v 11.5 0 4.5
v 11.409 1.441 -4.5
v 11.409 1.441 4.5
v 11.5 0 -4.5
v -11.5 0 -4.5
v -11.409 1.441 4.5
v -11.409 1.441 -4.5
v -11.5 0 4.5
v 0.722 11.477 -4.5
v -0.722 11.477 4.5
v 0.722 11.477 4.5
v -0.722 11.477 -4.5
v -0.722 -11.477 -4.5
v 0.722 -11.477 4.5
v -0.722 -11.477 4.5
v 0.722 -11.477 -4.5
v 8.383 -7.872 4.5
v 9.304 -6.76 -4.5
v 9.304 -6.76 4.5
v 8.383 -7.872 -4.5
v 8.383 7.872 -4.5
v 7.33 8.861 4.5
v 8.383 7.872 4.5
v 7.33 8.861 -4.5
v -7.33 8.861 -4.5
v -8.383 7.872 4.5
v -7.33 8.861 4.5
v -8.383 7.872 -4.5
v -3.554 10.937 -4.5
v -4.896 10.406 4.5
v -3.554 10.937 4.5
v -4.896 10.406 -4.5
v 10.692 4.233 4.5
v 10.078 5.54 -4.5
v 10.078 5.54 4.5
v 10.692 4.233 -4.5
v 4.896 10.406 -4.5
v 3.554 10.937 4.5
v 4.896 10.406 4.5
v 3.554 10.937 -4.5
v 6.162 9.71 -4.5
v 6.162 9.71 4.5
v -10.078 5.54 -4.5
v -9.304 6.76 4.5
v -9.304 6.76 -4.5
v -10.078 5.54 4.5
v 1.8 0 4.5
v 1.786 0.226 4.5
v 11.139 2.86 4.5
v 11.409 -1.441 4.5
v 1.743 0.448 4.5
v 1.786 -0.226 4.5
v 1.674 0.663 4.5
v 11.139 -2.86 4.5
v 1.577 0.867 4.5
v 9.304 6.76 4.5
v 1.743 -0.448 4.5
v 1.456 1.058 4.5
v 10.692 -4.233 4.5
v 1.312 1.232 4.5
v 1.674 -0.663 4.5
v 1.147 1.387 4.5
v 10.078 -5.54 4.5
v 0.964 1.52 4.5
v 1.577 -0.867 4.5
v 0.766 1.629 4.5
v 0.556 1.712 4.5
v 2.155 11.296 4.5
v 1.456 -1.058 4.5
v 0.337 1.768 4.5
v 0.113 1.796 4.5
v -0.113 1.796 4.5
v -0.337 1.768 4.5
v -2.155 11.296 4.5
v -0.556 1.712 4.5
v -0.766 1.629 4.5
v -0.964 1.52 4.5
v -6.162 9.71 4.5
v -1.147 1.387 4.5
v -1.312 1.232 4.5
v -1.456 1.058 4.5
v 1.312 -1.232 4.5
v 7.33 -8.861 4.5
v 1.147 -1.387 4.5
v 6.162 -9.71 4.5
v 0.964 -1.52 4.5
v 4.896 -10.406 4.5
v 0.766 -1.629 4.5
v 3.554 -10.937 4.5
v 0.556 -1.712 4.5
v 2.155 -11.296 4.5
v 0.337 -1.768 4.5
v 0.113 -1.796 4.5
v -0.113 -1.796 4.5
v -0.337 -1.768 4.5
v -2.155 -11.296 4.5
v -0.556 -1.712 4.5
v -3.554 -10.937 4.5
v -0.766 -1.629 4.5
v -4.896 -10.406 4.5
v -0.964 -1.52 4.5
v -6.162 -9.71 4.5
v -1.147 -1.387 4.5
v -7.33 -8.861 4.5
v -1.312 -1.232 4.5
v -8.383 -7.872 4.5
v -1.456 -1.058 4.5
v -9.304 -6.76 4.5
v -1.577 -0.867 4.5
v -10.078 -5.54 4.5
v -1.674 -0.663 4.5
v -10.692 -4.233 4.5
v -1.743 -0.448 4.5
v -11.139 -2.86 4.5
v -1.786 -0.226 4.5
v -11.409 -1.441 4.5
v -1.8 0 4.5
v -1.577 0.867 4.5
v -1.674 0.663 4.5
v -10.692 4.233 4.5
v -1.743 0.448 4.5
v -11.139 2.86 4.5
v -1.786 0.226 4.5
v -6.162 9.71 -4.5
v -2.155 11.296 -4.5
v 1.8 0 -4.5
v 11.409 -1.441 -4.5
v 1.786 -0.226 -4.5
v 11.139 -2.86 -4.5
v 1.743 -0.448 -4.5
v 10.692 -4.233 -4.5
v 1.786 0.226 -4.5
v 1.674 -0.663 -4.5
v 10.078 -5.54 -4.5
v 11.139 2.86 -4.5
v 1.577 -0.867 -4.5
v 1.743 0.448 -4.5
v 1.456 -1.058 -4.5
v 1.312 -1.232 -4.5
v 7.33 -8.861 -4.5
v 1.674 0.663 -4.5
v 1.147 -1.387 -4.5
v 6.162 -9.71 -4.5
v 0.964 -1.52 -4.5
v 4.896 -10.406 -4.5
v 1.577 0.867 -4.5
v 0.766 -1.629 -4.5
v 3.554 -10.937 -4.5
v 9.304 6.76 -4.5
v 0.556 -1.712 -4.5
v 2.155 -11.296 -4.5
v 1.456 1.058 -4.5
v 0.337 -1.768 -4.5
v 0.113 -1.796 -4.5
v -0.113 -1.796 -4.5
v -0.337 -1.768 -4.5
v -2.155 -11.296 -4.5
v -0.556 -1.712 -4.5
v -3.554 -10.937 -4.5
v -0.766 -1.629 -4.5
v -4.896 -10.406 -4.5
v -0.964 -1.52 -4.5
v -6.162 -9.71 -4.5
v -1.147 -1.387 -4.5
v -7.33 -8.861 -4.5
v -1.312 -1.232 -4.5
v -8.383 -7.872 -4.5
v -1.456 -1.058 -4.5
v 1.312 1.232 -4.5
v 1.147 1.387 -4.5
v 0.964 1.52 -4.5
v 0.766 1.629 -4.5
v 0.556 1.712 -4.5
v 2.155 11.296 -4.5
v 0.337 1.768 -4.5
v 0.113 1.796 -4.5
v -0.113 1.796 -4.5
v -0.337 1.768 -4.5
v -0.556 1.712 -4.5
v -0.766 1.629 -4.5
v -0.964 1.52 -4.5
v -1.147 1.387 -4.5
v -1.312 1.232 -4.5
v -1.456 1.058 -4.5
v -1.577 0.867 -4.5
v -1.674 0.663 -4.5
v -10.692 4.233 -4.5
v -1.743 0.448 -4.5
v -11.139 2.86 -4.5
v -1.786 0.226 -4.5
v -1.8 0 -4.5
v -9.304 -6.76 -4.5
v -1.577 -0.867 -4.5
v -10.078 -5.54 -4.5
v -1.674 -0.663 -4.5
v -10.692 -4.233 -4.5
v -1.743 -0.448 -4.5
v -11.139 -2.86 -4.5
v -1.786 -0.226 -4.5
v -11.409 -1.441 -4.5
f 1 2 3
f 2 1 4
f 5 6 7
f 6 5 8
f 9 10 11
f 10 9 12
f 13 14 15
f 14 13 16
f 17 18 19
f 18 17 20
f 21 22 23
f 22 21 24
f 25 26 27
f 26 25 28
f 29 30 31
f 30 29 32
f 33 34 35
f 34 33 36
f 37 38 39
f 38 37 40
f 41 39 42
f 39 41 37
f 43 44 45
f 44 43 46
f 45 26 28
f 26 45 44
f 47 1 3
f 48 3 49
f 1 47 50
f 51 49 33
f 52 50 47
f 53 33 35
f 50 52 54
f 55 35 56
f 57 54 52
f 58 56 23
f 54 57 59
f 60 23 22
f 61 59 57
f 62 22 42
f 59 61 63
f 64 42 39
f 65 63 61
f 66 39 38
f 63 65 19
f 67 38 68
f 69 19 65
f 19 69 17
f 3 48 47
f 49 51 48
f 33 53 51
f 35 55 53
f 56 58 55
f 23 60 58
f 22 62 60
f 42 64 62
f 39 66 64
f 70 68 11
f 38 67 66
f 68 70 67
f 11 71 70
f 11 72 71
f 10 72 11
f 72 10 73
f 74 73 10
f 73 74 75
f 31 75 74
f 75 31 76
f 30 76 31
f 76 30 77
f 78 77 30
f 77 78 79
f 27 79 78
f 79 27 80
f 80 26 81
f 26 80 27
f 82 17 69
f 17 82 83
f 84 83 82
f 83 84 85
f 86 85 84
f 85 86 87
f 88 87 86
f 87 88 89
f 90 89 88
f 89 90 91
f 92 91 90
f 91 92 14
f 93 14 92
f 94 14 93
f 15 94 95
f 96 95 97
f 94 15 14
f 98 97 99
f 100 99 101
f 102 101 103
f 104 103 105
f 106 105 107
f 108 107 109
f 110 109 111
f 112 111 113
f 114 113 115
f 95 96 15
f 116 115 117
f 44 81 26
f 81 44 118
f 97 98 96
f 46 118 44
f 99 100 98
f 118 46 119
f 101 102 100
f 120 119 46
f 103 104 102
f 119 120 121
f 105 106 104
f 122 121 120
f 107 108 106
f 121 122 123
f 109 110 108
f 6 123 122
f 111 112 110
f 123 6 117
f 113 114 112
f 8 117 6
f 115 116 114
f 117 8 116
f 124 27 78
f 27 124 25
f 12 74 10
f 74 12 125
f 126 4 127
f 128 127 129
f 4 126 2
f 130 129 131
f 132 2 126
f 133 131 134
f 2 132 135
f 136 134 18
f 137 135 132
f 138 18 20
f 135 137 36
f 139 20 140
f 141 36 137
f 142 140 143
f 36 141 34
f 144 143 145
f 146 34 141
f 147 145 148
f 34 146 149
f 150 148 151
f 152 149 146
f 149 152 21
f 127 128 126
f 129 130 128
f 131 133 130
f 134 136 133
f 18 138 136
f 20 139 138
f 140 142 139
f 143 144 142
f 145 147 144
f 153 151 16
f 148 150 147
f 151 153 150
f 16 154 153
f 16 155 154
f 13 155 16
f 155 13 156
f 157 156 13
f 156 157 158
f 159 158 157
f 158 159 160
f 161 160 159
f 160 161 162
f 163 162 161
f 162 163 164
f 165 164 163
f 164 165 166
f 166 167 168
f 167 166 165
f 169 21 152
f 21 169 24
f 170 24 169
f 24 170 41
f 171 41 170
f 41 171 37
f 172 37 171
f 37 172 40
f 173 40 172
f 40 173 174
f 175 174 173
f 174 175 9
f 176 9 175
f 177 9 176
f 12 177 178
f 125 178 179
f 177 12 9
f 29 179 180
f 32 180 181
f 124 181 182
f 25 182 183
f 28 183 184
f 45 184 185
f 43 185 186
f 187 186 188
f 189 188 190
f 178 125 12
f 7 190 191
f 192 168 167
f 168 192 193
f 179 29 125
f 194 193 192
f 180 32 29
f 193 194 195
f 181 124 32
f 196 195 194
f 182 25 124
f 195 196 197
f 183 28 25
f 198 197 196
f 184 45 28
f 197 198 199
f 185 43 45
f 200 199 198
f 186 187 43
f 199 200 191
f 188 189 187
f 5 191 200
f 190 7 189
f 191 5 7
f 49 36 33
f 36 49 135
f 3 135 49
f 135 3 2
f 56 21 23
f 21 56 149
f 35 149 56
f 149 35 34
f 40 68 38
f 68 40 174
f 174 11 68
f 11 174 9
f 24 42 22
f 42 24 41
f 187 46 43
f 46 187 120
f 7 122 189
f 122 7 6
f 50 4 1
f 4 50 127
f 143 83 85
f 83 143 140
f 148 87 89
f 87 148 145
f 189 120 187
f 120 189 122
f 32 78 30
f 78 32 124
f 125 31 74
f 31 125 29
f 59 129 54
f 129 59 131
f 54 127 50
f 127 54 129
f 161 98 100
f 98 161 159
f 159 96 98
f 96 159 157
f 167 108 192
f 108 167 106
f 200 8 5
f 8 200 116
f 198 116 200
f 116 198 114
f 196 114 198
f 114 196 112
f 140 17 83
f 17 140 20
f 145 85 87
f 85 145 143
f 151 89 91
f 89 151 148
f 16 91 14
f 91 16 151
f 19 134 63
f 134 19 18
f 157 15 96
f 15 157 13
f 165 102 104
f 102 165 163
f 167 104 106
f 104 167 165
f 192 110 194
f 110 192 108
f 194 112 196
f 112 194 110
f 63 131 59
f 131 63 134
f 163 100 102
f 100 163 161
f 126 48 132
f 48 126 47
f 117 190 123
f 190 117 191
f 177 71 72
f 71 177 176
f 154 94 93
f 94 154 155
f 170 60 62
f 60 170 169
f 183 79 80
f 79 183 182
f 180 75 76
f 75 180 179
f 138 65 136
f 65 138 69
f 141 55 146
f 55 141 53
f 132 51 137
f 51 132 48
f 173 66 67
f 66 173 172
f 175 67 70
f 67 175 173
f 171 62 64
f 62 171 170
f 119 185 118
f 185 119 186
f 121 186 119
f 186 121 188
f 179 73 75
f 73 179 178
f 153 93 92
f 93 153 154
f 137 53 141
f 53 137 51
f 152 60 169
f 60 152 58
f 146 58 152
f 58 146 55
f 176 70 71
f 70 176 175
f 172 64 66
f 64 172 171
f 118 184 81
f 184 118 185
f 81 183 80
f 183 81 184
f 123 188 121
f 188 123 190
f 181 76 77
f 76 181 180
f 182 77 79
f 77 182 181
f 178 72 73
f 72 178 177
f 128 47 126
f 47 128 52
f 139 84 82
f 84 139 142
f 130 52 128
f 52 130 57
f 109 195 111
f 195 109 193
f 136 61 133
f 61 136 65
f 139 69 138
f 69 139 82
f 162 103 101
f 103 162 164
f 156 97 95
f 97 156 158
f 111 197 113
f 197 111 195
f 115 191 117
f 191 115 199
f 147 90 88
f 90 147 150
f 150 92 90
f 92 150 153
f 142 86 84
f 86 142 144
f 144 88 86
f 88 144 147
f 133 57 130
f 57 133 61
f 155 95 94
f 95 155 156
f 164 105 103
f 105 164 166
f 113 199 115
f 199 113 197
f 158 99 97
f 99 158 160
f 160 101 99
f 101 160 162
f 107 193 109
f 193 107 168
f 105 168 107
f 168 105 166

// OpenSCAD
$fn = 50;


difference() {
	union() {
		translate(v = [0, 0, -4.5000000000]) {
			cylinder(h = 9, r = 11.5000000000);
		}
	}
	union() {
		translate(v = [0, 0, -100.0000000000]) {
			cylinder(h = 200, r = 1.8000000000);
		}
	}
}
